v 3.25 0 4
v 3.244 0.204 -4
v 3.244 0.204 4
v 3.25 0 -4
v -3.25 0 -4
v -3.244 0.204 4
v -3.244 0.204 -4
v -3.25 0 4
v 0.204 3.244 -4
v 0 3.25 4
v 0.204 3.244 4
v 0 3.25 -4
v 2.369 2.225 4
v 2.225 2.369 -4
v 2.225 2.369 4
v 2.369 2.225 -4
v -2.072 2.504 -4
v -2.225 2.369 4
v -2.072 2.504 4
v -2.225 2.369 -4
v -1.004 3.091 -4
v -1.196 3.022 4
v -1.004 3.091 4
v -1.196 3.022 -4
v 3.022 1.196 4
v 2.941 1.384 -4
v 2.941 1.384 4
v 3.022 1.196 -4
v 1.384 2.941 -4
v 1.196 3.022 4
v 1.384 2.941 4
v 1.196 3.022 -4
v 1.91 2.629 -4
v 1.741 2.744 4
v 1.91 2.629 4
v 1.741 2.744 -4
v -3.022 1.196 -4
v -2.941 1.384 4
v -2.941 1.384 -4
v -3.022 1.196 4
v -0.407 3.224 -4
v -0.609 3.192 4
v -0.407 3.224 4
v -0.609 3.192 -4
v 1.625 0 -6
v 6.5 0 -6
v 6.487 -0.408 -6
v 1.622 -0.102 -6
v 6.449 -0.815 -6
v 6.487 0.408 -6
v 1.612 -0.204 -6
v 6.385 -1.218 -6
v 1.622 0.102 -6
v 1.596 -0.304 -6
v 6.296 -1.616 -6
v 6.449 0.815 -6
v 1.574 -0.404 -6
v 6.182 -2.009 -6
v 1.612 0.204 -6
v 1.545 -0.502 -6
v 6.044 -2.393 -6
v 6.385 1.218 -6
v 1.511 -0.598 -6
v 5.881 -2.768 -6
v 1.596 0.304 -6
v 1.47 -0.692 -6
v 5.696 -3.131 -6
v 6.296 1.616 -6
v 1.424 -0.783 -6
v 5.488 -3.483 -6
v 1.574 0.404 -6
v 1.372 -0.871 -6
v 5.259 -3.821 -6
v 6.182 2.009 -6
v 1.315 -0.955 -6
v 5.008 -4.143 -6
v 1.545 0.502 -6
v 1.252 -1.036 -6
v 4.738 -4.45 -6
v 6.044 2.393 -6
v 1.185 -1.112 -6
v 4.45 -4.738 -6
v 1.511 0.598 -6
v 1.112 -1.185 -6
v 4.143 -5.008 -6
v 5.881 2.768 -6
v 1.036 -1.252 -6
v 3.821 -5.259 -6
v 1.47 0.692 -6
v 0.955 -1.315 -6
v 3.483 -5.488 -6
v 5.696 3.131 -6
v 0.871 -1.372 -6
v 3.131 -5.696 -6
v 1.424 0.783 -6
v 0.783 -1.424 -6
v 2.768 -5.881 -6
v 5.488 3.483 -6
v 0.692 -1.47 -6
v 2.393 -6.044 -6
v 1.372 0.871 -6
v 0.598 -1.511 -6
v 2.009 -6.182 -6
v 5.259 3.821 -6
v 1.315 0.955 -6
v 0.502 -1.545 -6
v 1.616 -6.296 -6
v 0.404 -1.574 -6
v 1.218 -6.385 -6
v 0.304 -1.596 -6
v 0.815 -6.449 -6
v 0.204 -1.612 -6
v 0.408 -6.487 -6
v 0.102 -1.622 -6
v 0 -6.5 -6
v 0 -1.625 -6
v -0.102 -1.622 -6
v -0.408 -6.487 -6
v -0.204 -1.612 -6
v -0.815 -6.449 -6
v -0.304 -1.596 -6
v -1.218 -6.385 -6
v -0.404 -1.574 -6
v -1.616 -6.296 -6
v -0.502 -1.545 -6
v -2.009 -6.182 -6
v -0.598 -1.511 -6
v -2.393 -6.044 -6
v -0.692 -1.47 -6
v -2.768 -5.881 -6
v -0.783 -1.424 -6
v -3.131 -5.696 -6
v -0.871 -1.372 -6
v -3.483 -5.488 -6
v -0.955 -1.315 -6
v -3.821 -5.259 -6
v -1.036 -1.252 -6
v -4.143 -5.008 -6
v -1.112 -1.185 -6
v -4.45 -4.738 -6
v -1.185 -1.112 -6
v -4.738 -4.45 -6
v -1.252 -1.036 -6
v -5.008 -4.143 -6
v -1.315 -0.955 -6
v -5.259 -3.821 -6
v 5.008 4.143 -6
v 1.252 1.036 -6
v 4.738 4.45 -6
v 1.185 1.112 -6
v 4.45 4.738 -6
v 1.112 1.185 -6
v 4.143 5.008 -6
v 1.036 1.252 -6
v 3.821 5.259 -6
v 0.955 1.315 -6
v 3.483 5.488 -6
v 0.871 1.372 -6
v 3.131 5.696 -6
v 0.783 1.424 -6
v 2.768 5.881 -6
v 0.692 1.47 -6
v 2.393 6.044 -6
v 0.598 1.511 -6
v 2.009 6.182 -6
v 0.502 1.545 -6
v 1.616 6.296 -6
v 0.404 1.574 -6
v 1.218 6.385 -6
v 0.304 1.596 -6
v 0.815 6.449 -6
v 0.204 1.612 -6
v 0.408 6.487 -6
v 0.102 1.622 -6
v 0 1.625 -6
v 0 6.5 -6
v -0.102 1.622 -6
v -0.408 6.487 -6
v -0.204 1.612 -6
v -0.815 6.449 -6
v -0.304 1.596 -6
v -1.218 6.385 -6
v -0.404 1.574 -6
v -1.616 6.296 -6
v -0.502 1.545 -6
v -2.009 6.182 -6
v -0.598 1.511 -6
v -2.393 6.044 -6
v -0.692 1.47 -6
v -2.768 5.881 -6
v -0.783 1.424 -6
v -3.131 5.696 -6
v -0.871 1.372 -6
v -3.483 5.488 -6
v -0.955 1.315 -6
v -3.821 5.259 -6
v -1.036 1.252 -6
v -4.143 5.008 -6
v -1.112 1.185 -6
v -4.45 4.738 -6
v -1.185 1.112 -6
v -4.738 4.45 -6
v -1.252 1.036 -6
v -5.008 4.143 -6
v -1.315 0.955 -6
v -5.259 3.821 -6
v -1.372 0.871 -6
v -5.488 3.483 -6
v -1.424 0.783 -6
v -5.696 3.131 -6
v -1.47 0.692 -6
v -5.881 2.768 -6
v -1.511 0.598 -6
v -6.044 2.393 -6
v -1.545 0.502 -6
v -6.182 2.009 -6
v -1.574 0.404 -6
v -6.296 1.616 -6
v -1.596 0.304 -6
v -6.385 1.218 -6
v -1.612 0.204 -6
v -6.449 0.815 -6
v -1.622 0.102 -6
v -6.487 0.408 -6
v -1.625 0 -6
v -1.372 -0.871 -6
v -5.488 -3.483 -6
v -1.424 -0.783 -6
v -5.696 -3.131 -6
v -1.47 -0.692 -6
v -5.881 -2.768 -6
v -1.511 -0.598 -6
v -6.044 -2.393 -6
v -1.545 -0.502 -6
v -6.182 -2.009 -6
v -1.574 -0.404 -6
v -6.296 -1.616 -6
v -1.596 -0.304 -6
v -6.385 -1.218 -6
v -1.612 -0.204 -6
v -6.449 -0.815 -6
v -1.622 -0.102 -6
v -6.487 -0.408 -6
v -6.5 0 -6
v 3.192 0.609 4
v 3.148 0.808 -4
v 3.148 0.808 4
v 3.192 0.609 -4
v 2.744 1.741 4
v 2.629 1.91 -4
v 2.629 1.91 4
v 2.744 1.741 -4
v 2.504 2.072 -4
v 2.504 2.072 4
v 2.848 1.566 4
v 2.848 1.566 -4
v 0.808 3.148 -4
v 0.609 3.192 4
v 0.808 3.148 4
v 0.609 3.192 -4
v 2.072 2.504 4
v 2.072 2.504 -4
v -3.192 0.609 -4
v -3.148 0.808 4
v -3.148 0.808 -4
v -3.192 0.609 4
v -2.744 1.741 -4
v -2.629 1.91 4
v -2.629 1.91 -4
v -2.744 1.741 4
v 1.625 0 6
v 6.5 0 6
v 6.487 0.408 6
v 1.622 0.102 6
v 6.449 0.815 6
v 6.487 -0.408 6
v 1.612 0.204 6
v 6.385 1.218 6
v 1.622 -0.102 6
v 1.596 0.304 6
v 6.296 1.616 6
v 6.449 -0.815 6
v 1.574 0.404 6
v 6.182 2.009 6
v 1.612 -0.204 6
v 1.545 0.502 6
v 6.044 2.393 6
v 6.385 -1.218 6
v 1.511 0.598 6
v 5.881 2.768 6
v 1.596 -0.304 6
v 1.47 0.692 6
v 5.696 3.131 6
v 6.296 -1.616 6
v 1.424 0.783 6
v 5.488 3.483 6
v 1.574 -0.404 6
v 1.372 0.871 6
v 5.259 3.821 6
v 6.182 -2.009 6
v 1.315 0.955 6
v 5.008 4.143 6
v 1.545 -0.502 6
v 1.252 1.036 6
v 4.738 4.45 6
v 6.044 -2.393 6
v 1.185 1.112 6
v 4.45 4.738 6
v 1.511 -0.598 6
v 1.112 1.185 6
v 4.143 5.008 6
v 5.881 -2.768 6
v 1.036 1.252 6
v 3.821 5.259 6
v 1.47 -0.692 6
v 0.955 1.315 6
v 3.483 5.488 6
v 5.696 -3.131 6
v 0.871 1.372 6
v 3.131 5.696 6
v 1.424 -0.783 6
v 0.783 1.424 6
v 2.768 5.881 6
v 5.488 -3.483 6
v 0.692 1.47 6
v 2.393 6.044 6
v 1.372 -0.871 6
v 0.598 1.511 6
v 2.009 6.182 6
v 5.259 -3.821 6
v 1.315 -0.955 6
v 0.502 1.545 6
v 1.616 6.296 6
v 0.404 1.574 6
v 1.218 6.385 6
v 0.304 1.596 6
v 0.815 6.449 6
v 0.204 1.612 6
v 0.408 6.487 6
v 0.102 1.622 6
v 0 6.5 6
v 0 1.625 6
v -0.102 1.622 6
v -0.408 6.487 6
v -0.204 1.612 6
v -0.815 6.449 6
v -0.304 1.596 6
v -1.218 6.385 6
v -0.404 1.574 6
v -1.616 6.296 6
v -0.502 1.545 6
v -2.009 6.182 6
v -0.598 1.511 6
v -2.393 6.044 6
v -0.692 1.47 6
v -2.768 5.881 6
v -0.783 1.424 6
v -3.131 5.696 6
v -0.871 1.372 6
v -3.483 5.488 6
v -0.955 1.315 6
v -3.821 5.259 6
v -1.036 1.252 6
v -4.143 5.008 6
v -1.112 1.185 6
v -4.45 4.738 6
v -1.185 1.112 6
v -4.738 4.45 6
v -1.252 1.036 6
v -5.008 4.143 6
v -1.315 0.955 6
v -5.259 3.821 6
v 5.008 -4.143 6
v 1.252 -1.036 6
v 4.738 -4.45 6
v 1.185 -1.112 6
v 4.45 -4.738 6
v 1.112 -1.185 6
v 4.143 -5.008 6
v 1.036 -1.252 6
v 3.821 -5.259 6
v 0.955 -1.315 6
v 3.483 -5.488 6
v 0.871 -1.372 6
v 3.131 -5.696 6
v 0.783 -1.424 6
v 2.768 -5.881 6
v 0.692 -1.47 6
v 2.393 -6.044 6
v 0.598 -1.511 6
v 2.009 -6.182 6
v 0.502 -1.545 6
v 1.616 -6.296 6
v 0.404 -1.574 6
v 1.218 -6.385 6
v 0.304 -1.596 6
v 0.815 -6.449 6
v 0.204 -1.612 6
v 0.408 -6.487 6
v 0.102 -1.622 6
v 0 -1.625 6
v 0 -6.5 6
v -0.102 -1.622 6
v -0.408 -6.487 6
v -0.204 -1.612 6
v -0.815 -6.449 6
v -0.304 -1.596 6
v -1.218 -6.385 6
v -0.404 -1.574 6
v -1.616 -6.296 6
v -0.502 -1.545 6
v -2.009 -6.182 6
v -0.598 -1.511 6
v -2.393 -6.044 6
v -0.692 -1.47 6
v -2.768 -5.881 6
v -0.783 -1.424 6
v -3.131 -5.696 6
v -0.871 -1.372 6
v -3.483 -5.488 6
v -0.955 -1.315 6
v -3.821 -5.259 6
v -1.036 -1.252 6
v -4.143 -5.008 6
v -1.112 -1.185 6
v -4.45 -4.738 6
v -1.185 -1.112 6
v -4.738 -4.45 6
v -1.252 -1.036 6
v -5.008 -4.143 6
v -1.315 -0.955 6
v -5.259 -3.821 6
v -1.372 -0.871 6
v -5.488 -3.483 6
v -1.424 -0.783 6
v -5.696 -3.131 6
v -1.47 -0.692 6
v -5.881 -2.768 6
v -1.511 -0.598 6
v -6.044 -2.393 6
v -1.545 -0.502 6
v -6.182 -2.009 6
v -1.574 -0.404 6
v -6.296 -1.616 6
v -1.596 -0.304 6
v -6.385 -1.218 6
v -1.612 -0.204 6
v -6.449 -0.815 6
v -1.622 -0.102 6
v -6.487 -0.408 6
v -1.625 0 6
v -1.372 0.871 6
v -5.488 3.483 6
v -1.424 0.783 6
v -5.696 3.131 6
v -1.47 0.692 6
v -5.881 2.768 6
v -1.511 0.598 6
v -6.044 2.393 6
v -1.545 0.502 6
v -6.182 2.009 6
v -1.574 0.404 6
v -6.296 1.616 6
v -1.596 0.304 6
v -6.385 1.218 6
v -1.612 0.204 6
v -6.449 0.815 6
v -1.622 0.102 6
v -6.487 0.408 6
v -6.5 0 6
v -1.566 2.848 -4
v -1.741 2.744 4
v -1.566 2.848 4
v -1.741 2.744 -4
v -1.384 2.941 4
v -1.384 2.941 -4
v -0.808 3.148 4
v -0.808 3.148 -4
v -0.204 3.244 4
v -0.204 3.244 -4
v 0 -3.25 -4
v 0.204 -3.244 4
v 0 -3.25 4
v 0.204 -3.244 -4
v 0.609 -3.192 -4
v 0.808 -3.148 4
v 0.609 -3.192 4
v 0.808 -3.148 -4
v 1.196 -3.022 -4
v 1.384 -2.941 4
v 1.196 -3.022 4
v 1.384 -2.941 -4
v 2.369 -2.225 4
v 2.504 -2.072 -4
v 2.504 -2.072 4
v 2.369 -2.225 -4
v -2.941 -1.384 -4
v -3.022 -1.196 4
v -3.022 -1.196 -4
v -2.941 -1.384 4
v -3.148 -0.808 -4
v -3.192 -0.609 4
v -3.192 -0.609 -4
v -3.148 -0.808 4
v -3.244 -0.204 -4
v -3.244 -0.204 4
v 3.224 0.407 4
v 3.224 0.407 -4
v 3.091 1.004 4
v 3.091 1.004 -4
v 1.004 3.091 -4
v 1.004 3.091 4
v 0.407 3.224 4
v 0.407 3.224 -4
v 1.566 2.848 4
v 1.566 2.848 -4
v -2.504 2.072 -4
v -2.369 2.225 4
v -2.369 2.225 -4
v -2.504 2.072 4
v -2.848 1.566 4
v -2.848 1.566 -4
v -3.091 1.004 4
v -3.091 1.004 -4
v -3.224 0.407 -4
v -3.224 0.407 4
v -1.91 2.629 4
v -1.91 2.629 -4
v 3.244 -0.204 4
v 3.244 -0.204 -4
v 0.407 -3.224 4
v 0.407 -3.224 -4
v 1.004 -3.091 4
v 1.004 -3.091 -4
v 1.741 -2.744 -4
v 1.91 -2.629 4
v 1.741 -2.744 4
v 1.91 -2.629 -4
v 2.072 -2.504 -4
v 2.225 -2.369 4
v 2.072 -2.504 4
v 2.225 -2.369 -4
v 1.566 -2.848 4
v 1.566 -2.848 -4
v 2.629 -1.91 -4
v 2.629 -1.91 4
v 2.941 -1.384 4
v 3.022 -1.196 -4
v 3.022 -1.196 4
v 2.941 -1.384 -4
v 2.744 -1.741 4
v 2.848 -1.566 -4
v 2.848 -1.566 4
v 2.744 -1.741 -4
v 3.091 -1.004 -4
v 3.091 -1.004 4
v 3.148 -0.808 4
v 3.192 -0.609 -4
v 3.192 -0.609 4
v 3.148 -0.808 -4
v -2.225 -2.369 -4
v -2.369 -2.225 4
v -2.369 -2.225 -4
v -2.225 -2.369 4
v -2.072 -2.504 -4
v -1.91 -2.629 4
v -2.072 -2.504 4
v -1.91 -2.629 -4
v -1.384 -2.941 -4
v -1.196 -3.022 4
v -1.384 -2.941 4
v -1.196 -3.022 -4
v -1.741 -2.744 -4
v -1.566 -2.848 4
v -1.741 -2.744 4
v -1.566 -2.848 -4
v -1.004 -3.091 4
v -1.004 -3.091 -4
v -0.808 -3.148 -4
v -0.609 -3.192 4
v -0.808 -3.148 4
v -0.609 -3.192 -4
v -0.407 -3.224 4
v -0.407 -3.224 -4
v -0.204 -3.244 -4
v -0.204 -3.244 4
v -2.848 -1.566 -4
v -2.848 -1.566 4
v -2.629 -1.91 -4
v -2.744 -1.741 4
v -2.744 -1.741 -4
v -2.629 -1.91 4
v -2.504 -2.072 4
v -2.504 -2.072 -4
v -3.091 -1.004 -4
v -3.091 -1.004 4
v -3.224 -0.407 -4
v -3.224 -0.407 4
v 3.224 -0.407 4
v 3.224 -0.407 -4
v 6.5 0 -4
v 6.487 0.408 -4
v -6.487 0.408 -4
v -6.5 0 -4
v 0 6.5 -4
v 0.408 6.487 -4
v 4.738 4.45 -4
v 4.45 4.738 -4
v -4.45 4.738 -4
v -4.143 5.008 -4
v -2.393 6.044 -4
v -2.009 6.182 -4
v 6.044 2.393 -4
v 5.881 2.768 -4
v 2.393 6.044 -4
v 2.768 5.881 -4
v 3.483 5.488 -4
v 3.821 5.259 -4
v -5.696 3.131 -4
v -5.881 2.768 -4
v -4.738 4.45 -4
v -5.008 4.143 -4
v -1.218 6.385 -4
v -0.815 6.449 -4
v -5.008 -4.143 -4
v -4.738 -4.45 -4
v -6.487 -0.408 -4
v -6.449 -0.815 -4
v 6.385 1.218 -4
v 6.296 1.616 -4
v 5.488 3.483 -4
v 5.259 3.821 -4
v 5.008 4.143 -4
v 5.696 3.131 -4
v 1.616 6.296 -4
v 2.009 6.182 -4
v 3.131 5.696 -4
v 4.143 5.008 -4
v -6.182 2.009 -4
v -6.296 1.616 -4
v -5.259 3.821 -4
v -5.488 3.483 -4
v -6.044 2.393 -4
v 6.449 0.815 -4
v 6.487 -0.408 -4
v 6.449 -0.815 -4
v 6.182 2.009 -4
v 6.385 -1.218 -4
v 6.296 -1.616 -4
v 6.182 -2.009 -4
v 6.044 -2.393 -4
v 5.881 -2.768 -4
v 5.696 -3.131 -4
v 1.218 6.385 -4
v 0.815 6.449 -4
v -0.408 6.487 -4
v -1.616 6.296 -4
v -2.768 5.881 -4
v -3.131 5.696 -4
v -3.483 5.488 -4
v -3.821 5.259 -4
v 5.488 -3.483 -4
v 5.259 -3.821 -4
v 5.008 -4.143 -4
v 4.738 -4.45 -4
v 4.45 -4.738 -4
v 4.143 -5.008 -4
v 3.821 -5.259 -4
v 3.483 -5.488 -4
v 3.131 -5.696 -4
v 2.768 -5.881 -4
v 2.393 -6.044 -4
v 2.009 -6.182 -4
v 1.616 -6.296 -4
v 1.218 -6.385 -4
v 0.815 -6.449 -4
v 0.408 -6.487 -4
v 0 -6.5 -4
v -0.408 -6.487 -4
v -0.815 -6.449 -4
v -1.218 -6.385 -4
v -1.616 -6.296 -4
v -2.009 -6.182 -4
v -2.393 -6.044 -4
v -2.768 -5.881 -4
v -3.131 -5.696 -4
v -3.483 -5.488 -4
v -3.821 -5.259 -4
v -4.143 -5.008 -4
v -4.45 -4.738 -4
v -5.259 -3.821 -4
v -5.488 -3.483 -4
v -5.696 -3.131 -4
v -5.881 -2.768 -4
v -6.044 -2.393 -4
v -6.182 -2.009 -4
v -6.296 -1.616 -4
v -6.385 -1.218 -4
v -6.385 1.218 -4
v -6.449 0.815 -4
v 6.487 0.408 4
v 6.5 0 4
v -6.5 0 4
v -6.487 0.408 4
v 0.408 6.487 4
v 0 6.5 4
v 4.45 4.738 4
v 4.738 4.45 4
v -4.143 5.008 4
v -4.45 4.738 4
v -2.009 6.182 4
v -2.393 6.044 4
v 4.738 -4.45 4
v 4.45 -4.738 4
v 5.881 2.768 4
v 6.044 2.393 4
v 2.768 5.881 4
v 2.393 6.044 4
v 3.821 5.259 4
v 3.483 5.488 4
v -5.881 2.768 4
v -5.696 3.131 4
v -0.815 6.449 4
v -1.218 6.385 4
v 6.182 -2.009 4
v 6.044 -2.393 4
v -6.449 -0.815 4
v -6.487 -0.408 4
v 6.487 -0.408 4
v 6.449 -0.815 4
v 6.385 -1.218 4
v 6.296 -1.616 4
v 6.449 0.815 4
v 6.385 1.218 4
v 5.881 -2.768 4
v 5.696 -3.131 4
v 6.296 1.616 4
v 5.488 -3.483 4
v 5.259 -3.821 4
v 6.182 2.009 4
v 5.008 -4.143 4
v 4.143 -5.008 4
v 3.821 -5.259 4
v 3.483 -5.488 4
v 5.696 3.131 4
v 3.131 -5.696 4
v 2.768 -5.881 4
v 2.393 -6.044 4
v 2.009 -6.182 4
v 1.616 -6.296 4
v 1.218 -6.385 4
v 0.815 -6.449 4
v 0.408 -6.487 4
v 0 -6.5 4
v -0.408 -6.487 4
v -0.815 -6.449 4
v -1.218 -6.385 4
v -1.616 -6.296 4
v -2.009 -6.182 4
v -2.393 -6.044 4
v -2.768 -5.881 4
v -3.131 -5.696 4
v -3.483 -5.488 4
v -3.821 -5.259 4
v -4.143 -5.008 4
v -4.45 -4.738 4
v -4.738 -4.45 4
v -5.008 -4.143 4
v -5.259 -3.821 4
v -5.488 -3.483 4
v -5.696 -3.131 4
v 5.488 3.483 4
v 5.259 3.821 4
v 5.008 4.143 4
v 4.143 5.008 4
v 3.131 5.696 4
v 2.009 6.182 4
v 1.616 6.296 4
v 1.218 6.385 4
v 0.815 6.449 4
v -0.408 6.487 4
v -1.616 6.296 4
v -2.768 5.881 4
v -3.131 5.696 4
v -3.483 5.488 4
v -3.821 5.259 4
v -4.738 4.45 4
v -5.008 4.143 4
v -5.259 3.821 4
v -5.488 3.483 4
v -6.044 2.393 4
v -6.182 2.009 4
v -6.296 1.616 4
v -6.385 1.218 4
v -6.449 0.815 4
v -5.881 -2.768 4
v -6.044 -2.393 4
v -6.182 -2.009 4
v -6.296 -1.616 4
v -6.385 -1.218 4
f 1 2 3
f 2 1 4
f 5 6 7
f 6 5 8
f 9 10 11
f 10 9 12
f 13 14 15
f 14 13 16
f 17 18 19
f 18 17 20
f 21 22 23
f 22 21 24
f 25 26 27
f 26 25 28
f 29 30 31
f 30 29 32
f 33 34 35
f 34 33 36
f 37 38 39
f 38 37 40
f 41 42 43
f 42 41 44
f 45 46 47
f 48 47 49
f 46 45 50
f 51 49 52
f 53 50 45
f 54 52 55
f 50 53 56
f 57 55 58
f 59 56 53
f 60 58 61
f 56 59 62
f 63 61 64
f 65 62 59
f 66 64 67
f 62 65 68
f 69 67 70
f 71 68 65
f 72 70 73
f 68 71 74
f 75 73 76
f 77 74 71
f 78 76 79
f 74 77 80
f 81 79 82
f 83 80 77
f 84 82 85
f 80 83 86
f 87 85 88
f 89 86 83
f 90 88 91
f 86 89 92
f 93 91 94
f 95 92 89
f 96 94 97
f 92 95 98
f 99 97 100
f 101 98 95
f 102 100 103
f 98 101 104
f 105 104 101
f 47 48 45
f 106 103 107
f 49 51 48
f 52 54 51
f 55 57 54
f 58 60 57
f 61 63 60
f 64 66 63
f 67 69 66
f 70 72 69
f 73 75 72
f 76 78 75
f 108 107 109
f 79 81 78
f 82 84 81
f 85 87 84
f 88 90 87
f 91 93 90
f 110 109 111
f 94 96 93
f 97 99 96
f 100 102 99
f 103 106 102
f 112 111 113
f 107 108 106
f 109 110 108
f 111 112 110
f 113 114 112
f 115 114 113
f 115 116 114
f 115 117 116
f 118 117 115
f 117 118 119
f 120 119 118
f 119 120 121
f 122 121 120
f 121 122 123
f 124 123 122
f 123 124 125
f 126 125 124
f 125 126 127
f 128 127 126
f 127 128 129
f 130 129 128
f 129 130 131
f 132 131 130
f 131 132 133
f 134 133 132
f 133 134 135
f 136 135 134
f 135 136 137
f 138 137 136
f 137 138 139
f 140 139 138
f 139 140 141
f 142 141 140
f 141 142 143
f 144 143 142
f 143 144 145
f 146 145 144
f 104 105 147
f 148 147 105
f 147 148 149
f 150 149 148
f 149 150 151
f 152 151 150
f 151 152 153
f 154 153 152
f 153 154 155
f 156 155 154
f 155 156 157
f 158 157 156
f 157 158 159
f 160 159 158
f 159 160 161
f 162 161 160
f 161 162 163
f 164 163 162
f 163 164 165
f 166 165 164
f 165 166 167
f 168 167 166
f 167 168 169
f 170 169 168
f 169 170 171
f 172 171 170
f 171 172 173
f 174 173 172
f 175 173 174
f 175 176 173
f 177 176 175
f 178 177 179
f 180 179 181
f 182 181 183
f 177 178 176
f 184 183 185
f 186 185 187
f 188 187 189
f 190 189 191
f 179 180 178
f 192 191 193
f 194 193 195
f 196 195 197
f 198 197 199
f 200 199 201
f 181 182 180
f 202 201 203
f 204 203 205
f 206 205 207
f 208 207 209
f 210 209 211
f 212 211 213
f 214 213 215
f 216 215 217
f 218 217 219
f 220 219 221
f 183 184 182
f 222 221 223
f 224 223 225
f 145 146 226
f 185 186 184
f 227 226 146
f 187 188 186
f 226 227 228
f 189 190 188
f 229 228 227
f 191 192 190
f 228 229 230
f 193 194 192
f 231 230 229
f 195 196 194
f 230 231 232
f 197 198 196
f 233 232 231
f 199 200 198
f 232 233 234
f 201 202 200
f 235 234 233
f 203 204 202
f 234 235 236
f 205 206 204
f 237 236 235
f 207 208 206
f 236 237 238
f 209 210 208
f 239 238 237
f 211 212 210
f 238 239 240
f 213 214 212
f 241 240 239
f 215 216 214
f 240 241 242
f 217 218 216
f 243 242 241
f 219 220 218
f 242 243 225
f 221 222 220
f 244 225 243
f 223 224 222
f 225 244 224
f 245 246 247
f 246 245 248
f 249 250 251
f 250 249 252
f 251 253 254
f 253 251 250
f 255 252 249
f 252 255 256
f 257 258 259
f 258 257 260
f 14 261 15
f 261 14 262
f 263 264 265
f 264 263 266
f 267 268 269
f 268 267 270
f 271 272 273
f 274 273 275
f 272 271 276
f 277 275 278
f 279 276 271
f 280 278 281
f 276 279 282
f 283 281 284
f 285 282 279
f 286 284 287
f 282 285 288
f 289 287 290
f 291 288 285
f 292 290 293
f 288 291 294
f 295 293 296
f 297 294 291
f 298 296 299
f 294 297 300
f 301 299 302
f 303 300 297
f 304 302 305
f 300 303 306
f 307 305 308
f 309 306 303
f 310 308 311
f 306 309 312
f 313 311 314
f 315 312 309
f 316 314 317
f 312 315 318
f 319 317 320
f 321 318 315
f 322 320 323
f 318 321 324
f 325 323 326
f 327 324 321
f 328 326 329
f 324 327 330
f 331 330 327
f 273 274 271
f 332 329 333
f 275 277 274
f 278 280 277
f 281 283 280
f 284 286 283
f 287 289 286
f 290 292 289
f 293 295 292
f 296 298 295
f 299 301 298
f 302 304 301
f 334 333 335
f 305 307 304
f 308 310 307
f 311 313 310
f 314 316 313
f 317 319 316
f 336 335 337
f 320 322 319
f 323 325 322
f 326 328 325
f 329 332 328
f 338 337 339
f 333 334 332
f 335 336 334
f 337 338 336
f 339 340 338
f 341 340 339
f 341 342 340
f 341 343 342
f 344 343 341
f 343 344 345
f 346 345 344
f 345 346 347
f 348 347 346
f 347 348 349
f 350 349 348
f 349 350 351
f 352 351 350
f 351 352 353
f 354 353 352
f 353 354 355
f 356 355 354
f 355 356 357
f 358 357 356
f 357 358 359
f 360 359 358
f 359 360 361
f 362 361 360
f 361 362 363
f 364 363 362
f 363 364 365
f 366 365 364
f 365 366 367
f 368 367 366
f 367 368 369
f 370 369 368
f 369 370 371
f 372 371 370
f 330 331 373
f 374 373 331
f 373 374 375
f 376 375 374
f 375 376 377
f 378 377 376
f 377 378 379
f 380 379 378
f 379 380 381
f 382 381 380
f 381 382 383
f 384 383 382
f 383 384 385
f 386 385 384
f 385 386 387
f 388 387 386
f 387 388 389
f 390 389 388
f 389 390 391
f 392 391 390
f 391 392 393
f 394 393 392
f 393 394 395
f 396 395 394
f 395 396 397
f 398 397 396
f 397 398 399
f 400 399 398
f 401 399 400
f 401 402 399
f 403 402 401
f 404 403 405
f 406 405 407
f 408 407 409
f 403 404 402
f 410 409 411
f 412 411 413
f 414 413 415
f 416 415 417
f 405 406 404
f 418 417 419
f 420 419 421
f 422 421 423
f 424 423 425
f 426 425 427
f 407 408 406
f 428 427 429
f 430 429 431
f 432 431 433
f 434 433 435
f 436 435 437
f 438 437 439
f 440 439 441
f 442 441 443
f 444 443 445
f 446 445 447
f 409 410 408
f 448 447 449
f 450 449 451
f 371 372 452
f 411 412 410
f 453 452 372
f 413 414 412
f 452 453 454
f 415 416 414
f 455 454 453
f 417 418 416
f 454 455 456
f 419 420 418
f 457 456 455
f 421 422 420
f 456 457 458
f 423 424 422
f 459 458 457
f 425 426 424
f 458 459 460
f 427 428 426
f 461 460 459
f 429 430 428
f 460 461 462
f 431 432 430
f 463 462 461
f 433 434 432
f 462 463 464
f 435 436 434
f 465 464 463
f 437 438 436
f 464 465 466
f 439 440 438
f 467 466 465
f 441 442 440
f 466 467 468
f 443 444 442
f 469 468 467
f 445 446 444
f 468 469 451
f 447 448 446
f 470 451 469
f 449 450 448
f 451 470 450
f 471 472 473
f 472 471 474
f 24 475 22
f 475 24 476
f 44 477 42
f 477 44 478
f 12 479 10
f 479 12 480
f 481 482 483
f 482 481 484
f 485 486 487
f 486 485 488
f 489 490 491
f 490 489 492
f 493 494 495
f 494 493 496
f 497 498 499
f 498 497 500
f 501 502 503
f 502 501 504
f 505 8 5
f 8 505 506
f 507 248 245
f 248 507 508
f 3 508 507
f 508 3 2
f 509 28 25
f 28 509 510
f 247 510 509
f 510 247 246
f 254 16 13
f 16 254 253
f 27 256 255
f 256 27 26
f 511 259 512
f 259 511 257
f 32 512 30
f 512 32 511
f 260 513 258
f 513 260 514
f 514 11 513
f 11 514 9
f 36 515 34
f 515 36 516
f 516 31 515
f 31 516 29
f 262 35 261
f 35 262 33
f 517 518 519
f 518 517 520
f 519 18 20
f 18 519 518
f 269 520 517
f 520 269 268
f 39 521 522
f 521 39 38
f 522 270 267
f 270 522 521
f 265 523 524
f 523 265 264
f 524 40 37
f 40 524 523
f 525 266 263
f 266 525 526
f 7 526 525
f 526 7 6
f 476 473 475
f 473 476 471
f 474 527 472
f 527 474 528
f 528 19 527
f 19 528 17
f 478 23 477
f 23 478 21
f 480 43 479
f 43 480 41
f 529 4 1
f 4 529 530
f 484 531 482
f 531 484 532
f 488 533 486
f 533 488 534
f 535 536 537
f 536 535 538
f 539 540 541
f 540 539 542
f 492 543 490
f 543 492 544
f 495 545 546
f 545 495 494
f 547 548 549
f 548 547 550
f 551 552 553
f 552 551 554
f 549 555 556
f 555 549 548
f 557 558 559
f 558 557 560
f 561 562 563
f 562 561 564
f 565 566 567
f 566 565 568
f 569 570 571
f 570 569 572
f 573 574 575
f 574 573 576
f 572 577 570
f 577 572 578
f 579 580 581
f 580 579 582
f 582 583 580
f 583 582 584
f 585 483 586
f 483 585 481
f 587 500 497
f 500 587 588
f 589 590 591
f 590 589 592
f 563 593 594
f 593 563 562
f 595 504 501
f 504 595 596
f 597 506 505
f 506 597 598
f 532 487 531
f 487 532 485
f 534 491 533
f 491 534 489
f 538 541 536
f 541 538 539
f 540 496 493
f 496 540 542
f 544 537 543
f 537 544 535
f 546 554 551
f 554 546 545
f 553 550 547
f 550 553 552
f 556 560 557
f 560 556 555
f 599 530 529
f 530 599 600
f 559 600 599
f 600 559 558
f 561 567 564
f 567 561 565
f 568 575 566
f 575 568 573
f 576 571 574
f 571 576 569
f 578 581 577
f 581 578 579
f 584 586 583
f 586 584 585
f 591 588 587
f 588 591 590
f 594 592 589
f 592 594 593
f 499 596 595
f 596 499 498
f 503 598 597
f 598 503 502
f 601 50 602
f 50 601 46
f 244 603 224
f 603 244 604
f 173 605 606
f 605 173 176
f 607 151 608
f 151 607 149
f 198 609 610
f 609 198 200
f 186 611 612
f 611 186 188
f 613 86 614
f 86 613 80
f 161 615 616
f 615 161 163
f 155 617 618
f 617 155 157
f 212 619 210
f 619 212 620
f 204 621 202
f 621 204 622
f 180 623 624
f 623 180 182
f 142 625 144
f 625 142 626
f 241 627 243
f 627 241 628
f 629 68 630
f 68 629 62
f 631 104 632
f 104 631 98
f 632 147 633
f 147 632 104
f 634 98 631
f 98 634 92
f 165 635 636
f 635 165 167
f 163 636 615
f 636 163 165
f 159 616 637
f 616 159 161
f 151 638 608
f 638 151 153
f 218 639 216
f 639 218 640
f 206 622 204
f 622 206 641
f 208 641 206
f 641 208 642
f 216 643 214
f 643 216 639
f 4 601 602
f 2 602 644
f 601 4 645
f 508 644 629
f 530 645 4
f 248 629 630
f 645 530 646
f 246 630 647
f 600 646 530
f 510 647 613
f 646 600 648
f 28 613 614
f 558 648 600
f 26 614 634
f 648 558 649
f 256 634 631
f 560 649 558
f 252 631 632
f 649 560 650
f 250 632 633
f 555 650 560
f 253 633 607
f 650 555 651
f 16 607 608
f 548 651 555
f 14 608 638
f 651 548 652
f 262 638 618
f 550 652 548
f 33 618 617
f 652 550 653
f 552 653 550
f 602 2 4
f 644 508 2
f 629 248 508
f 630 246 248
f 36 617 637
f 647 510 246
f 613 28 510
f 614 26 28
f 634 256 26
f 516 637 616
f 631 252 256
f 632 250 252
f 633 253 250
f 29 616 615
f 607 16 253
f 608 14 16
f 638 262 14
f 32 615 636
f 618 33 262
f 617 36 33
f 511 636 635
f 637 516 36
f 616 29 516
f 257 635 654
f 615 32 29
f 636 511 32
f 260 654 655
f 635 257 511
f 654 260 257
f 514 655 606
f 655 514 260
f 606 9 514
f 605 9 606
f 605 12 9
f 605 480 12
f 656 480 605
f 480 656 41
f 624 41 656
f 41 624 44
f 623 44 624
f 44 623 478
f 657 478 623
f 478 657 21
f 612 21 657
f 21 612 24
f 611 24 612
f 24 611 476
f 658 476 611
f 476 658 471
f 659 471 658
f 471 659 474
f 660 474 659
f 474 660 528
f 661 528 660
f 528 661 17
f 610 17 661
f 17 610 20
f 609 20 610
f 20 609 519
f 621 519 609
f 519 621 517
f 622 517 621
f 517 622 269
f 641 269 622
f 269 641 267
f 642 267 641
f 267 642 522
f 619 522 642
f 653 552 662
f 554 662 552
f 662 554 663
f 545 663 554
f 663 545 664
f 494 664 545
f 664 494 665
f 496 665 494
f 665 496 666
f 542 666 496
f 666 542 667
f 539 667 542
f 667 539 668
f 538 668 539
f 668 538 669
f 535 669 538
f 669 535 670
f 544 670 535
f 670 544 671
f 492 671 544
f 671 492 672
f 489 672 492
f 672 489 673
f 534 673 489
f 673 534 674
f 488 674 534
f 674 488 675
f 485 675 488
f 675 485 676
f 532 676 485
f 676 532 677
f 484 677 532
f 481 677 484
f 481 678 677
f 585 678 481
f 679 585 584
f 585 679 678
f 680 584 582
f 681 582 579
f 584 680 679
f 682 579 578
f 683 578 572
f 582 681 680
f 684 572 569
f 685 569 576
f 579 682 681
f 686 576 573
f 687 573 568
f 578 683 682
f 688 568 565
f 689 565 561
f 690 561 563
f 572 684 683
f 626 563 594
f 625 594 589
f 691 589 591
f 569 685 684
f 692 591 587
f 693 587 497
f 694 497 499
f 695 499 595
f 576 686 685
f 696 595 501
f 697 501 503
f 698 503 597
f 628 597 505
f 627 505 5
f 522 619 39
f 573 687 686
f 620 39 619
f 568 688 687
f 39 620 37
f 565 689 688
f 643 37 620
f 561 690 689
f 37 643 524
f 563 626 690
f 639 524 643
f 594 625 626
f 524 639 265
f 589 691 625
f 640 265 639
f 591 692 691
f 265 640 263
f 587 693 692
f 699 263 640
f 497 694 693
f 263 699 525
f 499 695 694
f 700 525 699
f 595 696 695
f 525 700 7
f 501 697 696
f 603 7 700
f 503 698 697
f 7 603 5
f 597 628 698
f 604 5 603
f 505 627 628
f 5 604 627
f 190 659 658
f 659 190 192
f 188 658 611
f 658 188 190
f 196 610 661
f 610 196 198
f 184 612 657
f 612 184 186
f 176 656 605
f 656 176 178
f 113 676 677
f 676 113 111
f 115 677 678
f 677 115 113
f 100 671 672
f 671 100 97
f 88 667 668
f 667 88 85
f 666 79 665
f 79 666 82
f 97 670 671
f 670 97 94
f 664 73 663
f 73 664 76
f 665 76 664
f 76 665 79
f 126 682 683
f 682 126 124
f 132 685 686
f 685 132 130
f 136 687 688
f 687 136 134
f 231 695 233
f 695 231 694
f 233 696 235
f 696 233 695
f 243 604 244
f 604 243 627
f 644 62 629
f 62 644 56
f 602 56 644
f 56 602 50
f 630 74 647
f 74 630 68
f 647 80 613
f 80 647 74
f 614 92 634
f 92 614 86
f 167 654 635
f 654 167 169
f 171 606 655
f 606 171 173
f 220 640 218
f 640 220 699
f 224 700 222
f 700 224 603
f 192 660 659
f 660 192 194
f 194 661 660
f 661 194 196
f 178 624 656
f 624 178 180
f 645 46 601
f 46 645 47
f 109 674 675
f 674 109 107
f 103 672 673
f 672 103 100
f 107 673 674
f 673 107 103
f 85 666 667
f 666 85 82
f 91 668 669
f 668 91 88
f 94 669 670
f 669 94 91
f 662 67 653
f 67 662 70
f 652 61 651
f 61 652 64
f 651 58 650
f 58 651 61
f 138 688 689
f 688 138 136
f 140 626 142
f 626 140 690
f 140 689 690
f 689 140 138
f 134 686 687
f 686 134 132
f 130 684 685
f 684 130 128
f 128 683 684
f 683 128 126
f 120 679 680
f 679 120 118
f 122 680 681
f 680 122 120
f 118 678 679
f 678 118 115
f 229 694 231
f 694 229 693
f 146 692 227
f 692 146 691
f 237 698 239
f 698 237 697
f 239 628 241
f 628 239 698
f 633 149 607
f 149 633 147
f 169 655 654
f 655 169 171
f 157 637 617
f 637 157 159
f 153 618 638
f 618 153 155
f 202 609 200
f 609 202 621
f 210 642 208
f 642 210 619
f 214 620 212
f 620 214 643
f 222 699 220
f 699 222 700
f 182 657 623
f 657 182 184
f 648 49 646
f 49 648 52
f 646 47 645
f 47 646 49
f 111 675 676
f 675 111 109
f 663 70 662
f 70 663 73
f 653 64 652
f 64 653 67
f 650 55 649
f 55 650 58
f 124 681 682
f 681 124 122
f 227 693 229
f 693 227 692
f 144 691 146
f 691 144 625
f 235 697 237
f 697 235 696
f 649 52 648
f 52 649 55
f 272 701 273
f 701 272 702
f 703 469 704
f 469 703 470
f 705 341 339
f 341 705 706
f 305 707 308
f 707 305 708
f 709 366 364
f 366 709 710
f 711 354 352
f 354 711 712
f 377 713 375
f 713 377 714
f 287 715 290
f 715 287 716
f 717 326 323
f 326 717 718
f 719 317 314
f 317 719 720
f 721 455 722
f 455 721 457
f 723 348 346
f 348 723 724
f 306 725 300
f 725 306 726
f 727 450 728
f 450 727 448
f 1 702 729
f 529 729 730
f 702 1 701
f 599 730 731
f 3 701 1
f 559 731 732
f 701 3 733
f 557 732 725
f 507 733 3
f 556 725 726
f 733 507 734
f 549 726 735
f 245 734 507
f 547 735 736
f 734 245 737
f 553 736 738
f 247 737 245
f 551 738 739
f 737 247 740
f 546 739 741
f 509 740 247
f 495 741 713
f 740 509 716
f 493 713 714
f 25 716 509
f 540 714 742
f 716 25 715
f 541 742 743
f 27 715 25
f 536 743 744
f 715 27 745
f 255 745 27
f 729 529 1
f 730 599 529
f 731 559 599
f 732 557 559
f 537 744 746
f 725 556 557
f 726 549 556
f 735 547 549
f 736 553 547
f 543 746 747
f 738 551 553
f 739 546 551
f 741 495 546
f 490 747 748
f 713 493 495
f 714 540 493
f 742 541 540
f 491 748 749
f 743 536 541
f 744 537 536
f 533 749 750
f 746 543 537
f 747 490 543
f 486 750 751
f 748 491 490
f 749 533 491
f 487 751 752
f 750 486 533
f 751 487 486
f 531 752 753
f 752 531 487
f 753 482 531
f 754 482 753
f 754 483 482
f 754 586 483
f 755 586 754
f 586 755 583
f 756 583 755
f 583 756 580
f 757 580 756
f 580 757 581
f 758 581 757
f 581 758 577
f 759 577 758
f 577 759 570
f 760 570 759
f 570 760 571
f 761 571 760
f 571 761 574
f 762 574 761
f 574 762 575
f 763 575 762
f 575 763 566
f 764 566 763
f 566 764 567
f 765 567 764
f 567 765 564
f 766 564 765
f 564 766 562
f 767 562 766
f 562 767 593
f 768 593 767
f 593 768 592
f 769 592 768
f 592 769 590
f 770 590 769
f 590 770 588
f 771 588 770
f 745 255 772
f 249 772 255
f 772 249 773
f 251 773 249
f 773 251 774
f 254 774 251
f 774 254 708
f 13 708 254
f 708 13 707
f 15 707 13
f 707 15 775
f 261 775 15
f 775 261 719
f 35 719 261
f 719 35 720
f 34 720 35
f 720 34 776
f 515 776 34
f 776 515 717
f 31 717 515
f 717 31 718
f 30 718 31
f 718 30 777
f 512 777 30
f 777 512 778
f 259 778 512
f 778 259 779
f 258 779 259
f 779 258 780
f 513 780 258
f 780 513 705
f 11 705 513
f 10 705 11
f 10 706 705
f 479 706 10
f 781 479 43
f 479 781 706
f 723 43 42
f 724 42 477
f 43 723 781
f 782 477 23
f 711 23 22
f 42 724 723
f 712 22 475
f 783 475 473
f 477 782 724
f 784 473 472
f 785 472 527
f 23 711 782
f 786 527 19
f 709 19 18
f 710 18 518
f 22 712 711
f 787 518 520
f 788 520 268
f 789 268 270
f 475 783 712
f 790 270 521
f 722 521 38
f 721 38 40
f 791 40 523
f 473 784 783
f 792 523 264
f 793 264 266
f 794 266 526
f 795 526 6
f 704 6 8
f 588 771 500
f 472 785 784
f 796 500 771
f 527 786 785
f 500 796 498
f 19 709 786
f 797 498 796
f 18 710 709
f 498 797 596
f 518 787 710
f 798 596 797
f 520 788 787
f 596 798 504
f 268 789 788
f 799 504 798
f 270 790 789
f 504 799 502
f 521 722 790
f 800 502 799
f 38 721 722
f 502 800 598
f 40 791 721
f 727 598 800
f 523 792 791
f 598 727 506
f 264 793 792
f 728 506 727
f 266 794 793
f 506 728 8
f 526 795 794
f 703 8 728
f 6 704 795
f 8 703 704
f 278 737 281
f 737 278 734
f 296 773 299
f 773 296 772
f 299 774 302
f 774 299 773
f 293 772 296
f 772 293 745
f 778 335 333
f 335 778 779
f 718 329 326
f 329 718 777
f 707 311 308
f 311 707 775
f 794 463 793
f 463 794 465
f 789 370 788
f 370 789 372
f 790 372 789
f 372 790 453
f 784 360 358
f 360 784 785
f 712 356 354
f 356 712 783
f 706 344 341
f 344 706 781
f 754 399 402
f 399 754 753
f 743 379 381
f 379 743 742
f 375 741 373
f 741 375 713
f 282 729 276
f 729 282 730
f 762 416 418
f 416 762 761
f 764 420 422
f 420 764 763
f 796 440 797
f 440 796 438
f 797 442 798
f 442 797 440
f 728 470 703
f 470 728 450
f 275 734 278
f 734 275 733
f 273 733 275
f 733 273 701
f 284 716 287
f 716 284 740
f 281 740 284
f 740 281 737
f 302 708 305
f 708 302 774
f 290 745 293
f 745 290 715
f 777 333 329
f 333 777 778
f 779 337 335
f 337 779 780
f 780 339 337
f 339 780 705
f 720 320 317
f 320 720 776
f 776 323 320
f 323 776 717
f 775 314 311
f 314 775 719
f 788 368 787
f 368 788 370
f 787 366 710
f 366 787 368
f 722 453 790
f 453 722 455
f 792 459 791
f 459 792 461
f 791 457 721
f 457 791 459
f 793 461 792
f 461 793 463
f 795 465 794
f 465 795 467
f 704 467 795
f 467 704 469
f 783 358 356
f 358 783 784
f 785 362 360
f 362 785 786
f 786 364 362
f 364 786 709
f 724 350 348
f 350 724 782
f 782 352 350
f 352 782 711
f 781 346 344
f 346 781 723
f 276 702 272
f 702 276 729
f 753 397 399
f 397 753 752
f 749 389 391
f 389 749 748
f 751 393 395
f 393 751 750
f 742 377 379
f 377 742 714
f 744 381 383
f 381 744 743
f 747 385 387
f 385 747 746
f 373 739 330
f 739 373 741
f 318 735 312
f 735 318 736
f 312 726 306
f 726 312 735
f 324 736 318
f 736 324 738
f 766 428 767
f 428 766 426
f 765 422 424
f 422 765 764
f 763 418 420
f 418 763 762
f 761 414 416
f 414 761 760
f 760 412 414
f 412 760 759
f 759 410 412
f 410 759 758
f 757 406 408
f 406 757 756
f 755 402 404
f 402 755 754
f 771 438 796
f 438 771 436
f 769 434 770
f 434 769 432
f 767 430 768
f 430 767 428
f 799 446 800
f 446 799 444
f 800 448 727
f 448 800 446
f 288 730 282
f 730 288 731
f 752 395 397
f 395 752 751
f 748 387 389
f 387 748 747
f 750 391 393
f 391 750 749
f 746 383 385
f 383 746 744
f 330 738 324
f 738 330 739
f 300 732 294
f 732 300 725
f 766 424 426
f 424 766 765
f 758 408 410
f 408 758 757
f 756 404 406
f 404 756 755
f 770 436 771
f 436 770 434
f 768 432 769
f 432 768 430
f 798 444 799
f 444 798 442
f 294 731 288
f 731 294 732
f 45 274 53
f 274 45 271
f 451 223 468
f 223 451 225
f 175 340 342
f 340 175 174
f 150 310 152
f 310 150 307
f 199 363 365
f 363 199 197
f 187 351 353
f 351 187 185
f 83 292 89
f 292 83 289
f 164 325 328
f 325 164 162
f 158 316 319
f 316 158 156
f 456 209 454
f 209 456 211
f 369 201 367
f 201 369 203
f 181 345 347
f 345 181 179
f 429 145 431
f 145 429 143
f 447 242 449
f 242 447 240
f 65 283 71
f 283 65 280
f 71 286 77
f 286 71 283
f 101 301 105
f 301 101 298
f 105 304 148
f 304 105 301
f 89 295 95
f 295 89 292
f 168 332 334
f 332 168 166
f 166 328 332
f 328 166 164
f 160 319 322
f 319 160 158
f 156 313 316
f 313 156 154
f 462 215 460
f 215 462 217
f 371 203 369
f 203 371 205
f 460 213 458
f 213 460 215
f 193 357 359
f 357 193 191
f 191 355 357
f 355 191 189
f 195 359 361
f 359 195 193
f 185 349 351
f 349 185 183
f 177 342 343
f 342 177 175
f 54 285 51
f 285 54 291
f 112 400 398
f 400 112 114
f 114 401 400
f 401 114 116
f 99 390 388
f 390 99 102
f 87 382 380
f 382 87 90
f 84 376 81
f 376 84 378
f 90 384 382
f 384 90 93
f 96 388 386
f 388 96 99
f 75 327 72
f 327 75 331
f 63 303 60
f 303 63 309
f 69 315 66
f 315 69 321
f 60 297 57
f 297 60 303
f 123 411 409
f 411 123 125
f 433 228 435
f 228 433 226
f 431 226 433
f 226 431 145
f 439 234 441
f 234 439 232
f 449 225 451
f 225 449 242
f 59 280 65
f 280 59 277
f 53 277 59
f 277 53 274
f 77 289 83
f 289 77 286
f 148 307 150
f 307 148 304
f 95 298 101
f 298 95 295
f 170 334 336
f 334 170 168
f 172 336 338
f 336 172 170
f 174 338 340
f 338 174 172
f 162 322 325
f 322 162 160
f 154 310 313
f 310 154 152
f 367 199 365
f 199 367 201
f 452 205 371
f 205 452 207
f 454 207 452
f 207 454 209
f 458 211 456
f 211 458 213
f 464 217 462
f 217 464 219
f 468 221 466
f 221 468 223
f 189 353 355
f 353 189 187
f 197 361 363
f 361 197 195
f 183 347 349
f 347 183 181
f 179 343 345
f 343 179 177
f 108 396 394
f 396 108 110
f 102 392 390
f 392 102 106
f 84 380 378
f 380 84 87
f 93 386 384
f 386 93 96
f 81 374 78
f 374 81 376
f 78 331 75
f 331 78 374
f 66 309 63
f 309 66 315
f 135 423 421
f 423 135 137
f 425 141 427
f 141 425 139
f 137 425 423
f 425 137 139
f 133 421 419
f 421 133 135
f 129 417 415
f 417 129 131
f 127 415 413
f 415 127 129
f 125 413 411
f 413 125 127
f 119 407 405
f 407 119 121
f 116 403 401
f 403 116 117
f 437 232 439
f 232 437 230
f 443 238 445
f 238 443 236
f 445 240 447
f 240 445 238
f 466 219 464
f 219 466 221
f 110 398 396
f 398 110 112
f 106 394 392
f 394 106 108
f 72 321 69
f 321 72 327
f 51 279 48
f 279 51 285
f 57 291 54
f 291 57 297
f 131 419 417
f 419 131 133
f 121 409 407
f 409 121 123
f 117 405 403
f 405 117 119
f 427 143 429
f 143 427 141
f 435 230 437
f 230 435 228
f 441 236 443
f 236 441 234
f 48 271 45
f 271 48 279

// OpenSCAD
// Coil Winding Spool
module coil_spool() {
    difference() {
        union() {
            // Center core
            cylinder(h=12.0, r=3.25, center=true, $fn=100);

            // Bottom flange
            translate([0, 0, -6.0])
            cylinder(h=2.0, r=6.5, center=false, $fn=100);

            // Top flange
            translate([0, 0, 4.0])
            cylinder(h=2.0, r=6.5, center=false, $fn=100);
        }

        // Center hole for mounting
        cylinder(h=13.0, r=1.625, center=true, $fn=100);
    }
}

// Define copper coil appearance
module copper_coil() {
    color("Orange", 0.8)
    coil_spool();
}

copper_coil();
